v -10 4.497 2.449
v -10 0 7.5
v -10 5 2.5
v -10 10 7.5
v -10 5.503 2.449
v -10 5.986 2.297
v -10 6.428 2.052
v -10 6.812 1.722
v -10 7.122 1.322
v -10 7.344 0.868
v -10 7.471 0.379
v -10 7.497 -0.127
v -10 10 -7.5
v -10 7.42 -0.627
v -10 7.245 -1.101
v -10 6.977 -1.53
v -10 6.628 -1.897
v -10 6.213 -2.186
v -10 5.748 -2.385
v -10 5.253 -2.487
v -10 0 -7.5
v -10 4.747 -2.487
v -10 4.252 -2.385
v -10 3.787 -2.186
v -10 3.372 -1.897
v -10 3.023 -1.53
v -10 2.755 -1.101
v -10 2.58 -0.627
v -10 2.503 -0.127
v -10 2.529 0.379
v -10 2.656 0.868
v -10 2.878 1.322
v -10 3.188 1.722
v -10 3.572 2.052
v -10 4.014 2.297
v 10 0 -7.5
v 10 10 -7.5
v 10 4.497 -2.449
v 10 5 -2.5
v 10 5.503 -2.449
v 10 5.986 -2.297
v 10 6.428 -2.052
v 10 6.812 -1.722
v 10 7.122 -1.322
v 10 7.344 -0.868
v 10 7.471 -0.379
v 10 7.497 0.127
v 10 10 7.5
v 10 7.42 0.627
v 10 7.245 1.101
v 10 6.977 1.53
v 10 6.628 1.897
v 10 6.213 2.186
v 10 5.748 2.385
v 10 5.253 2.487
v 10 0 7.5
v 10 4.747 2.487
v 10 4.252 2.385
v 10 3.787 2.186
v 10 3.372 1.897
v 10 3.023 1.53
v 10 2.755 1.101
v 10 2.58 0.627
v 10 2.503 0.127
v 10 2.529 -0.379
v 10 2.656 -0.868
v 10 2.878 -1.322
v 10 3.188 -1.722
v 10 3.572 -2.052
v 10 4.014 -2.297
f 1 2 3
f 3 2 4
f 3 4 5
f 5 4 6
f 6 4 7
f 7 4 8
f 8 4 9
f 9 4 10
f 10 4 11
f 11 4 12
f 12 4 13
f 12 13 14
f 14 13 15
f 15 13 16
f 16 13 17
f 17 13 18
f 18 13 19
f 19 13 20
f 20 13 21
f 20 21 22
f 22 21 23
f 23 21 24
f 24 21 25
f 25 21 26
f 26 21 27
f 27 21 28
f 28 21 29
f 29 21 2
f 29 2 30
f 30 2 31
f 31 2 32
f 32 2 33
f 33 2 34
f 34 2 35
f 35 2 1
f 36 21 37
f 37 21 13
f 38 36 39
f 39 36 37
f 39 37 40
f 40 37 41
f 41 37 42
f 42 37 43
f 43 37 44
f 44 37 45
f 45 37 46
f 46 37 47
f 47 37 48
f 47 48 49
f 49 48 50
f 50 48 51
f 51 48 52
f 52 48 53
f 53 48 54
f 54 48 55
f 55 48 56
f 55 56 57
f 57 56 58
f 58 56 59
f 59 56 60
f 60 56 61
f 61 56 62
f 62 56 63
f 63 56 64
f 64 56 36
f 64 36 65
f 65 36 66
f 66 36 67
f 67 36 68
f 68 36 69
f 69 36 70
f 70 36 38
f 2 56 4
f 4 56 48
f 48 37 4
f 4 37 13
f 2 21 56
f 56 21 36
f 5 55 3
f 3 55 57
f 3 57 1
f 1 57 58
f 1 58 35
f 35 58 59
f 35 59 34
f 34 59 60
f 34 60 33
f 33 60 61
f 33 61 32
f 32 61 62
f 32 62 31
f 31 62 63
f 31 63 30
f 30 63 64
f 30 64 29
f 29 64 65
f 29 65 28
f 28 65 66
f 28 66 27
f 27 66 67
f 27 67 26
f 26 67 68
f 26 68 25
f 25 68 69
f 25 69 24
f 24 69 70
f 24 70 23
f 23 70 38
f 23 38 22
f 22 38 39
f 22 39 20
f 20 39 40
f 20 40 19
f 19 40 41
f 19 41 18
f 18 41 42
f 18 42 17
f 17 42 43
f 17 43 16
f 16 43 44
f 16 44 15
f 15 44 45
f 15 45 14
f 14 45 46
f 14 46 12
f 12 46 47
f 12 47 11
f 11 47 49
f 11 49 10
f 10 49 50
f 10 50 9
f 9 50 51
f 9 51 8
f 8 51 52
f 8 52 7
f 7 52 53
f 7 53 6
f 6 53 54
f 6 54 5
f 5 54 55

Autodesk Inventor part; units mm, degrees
ref_plane "YZ Plane" through (0, 0, 0) normal (1, 0, 0) x (0, 1, 0)
ref_plane "XZ Plane" through (0, 0, 0) normal (0, 1, 0) x (-1, 0, 0)
ref_plane "XY Plane" through (0, 0, 0) normal (0, 0, 1) x (1, 0, 0)
sketch "Sketch1" plane through (0, 0, 0) normal (0, 1, 0) x (-1, 0, 0)
  line L0 (10, -7.5) -> (-10, -7.5)
  line L1 (-10, -7.5) -> (-10, 7.5)
  line L2 (-10, 7.5) -> (10, 7.5)
  line L3 (10, 7.5) -> (10, -7.5)
  line L4 (14, 0) -> (-14, 0) projected
  line L5 (0, -10.5) -> (0, 10.5) projected
  point P0 (0, 0)
  dimension "d0" = 15
  dimension "d1" = 20
extrude "Extrusion1" add sketch "Sketch1" along normal blind 10
sketch "Sketch2" plane through (10, 0, 7.5) normal (1, 0, 0) x (0, 0, -1)
  line L0 (0, 0) -> (15, 0) projected
  line L1 (15, 0) -> (15, 10) projected
  line L2 (0, 10) -> (15, 10) projected
  line L3 (0, 0) -> (0, 10) projected
  circle A0 centre (7.5, 5) radius 2.5
  line L4 (15, 10) -> (0, 0) construction
  line L5 (0, 10) -> (15, 0) construction
  point P0 (7.5, 0)
  dimension "d4" = 5
extrude "Extrusion2" cut sketch "Sketch2" against normal through all contours A0
properties part number "stop_block"
